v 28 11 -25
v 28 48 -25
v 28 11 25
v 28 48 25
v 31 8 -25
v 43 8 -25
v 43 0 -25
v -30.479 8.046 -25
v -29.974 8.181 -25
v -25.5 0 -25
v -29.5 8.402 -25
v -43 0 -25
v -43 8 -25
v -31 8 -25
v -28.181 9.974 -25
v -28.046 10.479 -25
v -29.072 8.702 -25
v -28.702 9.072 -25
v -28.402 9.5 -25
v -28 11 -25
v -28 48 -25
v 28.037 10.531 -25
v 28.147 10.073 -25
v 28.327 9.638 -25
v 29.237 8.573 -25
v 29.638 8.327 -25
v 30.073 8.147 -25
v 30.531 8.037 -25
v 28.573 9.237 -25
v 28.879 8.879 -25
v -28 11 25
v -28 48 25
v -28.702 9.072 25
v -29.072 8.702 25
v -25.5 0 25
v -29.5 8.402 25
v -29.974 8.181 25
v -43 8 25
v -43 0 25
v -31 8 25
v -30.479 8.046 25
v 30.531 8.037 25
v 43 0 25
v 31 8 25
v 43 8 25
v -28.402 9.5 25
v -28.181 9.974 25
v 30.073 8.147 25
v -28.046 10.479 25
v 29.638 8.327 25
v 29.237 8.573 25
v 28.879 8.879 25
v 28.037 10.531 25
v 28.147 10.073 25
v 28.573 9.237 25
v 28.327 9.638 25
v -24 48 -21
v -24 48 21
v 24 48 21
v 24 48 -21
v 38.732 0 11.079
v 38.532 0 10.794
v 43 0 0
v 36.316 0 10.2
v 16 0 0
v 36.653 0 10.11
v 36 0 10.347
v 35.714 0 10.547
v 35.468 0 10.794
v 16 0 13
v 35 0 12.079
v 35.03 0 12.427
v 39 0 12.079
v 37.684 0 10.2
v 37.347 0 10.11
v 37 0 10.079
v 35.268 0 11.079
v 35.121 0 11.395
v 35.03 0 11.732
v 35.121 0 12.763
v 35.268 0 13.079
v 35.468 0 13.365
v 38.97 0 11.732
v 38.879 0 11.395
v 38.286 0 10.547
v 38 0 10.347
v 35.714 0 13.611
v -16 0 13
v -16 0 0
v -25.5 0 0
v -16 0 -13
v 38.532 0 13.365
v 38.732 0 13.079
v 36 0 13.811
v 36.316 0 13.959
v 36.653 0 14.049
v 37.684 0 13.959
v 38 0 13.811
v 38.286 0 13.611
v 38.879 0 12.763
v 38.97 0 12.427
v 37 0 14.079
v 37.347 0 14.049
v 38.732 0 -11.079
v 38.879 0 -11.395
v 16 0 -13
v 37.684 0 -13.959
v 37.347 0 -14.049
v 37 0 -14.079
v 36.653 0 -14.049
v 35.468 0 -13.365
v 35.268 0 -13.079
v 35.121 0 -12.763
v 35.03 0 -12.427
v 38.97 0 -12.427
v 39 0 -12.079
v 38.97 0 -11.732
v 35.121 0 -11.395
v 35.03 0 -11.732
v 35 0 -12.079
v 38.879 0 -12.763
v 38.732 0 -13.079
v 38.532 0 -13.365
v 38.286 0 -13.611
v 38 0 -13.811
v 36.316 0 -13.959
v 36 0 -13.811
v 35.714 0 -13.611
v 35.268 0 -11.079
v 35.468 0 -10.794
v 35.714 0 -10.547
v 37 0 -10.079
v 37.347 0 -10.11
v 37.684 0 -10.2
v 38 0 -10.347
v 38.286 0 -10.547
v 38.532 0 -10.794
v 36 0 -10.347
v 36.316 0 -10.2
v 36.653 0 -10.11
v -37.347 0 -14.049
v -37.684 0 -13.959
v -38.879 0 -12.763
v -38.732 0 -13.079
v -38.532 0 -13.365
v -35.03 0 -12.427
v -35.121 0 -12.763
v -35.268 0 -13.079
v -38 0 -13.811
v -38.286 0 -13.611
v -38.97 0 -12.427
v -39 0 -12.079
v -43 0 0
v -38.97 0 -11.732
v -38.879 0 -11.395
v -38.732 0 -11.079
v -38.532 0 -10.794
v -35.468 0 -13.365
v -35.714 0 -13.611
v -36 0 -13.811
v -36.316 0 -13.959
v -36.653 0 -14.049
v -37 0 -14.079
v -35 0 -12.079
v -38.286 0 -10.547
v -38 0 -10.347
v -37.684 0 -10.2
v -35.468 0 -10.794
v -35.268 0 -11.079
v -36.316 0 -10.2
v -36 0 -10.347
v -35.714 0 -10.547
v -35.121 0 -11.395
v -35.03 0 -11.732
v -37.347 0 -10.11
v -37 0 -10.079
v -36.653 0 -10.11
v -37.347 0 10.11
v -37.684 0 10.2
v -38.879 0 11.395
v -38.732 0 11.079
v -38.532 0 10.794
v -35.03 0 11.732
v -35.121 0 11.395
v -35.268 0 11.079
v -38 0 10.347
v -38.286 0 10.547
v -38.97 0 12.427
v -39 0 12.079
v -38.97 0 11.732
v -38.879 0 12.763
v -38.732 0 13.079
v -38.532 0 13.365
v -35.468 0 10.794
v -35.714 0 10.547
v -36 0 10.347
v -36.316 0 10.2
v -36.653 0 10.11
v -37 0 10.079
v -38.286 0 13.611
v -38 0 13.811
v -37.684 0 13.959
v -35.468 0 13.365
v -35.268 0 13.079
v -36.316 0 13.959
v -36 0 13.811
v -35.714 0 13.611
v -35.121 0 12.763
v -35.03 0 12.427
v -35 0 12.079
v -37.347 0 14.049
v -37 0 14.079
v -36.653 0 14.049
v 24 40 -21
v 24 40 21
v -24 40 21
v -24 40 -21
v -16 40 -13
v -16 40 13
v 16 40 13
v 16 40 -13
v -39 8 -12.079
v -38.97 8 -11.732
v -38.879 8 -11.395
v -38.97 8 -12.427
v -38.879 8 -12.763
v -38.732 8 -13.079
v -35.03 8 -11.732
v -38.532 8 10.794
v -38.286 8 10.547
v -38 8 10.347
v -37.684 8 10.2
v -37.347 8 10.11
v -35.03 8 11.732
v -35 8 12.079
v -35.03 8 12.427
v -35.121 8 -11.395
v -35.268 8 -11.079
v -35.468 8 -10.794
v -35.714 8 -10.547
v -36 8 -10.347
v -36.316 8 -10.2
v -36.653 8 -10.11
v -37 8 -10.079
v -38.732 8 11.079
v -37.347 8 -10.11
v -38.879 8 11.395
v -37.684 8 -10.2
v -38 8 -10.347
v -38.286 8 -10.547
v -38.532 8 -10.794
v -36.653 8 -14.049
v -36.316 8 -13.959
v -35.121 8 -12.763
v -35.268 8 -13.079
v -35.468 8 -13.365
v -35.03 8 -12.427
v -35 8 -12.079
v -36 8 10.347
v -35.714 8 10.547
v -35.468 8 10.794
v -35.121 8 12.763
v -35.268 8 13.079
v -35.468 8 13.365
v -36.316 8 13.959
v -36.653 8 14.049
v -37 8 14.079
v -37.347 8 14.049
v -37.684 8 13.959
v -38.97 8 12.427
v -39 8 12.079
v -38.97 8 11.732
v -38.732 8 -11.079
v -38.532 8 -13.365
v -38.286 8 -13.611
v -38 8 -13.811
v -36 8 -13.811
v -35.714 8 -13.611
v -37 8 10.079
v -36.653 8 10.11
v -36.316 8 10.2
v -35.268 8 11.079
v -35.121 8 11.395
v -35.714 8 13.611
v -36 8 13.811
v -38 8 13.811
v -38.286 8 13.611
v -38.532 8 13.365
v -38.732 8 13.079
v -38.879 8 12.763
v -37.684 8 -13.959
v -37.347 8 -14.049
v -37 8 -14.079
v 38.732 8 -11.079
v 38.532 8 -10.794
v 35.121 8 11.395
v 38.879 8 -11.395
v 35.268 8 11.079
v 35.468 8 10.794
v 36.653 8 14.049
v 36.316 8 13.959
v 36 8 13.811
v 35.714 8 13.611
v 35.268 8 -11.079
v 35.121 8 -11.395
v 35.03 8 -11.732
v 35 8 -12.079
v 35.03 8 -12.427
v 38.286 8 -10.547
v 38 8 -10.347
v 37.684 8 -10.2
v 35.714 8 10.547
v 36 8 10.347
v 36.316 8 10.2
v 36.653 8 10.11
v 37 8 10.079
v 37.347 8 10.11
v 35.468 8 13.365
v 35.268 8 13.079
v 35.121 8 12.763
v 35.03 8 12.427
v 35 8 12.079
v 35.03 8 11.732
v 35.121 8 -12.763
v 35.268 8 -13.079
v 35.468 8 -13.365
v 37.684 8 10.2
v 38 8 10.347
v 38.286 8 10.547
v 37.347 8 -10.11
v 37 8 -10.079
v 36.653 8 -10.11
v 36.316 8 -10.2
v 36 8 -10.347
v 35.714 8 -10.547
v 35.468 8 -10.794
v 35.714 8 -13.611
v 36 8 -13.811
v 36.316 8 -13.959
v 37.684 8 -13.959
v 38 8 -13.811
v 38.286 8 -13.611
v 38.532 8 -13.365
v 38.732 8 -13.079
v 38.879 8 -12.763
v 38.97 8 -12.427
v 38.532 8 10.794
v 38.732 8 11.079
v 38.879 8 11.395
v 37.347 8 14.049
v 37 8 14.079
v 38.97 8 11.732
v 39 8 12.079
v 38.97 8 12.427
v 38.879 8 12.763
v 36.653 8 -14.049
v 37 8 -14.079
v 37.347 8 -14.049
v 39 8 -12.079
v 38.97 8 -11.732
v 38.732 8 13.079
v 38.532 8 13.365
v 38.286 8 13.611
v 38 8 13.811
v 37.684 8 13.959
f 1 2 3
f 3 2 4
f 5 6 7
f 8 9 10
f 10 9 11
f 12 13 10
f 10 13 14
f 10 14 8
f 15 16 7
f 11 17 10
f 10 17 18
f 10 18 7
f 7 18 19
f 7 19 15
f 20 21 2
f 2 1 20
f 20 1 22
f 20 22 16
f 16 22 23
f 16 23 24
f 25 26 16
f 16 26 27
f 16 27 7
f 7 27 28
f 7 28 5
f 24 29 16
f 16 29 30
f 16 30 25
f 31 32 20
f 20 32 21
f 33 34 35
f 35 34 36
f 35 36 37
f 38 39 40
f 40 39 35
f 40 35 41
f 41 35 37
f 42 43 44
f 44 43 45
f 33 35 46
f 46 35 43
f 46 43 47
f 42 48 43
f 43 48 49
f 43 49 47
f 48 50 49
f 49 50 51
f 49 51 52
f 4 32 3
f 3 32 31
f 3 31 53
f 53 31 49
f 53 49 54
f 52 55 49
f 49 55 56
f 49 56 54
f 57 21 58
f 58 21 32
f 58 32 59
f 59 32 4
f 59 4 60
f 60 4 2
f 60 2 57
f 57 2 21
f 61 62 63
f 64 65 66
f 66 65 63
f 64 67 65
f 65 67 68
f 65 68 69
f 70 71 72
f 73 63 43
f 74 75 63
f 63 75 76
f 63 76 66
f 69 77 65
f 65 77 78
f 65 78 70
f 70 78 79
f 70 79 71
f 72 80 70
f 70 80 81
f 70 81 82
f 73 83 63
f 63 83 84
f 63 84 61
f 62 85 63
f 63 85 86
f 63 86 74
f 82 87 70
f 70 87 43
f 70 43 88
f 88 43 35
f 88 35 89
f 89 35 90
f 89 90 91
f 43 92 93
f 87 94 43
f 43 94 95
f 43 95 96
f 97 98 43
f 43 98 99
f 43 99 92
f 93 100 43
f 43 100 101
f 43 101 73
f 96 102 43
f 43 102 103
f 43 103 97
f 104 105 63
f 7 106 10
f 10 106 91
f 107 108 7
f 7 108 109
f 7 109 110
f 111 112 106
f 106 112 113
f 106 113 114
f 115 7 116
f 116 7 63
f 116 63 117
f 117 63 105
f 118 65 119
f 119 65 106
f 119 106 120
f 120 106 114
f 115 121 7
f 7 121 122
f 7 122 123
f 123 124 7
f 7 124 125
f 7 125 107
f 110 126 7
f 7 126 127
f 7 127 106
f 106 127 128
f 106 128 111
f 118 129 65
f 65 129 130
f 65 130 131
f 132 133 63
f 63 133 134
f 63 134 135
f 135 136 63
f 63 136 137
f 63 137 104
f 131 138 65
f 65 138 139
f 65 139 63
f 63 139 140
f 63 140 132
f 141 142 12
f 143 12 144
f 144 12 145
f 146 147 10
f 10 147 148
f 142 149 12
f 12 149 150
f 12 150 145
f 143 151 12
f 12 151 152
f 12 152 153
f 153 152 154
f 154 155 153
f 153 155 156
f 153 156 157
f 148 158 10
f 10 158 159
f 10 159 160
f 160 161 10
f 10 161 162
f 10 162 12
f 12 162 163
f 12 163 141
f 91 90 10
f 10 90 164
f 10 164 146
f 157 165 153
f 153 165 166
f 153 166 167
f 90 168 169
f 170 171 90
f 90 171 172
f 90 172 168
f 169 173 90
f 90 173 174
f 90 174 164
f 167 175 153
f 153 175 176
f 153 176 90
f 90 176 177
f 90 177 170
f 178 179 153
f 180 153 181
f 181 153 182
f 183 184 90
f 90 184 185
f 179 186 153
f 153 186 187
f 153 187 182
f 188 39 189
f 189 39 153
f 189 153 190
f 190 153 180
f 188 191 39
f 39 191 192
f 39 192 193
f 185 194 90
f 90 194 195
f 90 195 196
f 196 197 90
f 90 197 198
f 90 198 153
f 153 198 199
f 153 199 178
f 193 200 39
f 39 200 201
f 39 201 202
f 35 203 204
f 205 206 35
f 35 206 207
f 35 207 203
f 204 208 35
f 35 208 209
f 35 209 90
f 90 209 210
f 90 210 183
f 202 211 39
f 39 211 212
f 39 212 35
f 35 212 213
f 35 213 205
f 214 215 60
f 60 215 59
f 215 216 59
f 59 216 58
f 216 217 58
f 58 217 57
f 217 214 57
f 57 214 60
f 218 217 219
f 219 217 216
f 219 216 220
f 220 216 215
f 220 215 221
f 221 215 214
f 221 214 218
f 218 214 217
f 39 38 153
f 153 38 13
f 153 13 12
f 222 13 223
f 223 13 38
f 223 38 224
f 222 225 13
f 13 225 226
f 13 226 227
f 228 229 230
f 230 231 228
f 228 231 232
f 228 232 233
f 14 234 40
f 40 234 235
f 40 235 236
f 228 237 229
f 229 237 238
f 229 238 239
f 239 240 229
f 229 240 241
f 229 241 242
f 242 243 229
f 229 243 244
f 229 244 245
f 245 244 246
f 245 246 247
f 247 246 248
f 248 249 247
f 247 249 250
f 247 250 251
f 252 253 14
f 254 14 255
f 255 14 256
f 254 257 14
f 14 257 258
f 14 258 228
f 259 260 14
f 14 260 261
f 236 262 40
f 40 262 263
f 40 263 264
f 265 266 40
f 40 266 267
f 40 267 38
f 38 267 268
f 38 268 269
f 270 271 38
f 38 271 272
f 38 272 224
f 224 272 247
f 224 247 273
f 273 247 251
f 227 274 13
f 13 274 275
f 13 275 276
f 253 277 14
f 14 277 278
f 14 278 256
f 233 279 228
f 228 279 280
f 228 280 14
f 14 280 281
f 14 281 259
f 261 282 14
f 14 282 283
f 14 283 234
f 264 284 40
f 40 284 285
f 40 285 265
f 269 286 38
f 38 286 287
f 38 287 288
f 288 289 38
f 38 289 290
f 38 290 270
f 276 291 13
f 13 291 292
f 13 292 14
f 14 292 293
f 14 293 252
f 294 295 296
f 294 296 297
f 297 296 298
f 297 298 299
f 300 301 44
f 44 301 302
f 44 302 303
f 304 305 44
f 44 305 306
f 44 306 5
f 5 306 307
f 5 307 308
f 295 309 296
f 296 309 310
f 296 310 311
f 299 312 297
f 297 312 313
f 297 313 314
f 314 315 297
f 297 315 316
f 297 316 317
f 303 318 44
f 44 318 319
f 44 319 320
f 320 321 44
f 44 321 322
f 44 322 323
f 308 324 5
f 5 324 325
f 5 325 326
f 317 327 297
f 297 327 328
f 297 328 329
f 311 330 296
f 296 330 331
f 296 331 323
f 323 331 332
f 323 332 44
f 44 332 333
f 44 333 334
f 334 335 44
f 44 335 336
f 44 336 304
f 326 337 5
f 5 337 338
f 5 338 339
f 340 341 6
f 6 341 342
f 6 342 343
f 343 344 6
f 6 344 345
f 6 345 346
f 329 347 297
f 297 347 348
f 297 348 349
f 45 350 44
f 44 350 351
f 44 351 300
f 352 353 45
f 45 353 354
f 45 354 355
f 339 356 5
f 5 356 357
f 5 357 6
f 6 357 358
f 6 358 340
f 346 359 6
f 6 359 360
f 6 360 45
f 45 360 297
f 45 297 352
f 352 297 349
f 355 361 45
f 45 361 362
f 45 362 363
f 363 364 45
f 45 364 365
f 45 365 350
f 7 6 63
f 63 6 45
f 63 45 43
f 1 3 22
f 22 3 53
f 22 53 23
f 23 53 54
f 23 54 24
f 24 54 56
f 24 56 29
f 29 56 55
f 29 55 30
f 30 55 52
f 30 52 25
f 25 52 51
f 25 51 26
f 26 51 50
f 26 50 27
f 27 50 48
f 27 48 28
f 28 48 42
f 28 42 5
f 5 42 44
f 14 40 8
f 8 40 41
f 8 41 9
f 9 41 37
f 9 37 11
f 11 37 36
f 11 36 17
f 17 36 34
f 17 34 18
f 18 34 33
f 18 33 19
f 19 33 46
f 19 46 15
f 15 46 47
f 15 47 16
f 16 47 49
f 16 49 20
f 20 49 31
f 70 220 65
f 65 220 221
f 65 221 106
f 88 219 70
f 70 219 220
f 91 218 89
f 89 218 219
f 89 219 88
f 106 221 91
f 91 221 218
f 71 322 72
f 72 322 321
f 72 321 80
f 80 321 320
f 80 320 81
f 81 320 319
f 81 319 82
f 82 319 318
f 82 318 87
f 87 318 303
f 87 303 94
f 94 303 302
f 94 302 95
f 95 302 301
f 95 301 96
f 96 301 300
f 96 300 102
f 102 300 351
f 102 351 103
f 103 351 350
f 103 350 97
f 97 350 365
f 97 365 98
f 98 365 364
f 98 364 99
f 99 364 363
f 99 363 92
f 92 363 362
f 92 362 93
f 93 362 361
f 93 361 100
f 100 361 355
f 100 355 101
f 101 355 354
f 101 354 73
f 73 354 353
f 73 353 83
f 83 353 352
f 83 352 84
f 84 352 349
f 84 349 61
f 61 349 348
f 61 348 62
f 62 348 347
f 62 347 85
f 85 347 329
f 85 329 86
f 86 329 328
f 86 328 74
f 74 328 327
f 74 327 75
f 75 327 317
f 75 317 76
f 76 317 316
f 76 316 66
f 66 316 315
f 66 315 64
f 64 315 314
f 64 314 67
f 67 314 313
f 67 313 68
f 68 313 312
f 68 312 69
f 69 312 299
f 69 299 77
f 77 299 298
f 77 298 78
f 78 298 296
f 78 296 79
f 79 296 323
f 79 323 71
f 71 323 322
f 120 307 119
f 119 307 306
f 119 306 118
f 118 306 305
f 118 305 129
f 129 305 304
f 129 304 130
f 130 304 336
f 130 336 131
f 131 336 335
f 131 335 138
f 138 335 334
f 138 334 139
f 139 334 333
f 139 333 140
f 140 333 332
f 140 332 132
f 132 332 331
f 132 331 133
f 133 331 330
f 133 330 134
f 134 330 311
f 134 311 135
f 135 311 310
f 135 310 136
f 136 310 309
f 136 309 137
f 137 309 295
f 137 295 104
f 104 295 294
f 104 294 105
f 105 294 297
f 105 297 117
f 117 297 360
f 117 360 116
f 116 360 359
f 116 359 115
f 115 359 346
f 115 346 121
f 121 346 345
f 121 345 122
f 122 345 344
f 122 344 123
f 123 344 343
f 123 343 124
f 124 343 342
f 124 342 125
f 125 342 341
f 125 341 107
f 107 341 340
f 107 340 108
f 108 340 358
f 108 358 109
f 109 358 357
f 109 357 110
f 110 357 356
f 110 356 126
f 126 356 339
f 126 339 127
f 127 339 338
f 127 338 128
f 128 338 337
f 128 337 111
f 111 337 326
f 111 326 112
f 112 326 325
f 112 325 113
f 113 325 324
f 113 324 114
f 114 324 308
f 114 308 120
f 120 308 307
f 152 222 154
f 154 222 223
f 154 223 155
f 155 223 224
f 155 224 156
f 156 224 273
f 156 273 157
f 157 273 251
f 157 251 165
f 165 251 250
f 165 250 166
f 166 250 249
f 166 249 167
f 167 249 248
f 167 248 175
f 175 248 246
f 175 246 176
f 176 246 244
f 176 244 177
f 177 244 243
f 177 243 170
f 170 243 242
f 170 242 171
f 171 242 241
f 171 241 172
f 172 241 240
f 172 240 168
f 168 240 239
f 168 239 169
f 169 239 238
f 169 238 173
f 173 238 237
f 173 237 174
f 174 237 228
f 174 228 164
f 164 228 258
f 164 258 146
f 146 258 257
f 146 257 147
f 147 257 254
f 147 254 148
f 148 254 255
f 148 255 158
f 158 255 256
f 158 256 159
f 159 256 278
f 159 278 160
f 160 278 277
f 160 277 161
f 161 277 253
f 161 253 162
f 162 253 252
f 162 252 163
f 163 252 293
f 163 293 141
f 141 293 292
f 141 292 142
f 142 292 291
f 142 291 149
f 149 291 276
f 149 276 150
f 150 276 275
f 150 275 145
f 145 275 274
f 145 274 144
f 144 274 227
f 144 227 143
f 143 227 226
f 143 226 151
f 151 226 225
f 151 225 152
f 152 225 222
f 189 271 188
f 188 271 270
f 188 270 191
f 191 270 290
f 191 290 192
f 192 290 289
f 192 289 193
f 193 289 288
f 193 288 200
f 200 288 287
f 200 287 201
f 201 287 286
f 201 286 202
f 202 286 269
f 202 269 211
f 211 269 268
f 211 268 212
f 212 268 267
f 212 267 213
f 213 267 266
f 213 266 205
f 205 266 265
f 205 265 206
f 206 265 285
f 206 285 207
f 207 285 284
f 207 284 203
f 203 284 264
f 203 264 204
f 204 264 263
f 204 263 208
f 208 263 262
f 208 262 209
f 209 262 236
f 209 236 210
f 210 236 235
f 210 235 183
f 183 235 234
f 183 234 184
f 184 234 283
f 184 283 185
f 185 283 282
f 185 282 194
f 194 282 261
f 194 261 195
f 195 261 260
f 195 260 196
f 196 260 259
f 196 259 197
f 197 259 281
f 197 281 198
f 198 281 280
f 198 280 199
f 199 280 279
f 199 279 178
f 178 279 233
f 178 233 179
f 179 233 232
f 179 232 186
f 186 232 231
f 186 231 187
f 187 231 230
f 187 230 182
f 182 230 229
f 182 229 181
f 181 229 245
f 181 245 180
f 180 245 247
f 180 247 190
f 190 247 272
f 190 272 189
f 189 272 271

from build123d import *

# Parameters (mm, degrees)
SKETCH1_W               = 56
SKETCH1_H               = 50
BOSS_EXTRUDE1_DEPTH     = 48
SKETCH3_W               = 48
SKETCH3_H               = 42
CUT_EXTRUDE1_DEPTH      = 8
SKETCH4_W               = 15
SKETCH4_H               = 8
BOSS_EXTRUDE2_DEPTH     = 50
FILLET1_R               = 3
CUT_EXTRUDE2_DEPTH      = 64.827893589
CUT_EXTRUDE2_DEPTH_BACK = 64.827893589
SKETCH5_W               = 32
SKETCH5_H               = 26
CUT_EXTRUDE3_DEPTH      = 64.827893589
CUT_EXTRUDE3_DEPTH_BACK = 64.827893589
SKETCH6_R               = 2


with BuildPart() as part:
    # Sketch1 → Boss-Extrude1 (new body)
    with BuildSketch(Plane(origin=(0, 0, 0), x_dir=(1, 0, 0), z_dir=(0, 1, 0))):
        Rectangle(SKETCH1_W, SKETCH1_H)
    extrude(amount=BOSS_EXTRUDE1_DEPTH)

    # Sketch3 → Cut-Extrude1 (cut)
    with BuildSketch(Plane(origin=(0, 48, 0), x_dir=(1, 0, 0), z_dir=(0, 1, 0))):
        Rectangle(SKETCH3_W, SKETCH3_H)
    extrude(amount=-CUT_EXTRUDE1_DEPTH, mode=Mode.SUBTRACT)

    # Sketch4 → Boss-Extrude2 (add)
    with BuildSketch(Plane.XY.offset(25)):
        with Locations((-35.5, 4)):
            Rectangle(SKETCH4_W, SKETCH4_H)
        with Locations((35.5, 4)):
            Rectangle(SKETCH4_W, SKETCH4_H)
    extrude(amount=-BOSS_EXTRUDE2_DEPTH)

    # Fillet1
    fillet1_edges = [part.edges().sort_by_distance(p)[0] for p in [
        (-28, 8, 0),
        (28, 8, 0),
    ]]
    fillet(fillet1_edges, radius=FILLET1_R)

    # Sketch5 → Cut-Extrude2 (cut, two sides: drawn at the far end of the back side and taken through both)
    with BuildSketch(Plane(origin=(0, 40, 0), x_dir=(1, 0, 0), z_dir=(0, 1, 0)).offset(-CUT_EXTRUDE2_DEPTH_BACK)):
        Rectangle(SKETCH5_W, SKETCH5_H)
    extrude(amount=CUT_EXTRUDE2_DEPTH + CUT_EXTRUDE2_DEPTH_BACK, mode=Mode.SUBTRACT)

    # Sketch6 → Cut-Extrude3 (cut, two sides: drawn at the far end of the back side and taken through both)
    with BuildSketch(Plane(origin=(0, 8, 0), x_dir=(1, 0, 0), z_dir=(0, 1, 0)).offset(-CUT_EXTRUDE3_DEPTH_BACK)):
        with Locations(Location((-37, 12.079385962, 0), (0, 0, 180))):
            Circle(SKETCH6_R)
        with Locations(Location((-37, -12.079385962, 0), (0, 0, 180))):
            Circle(SKETCH6_R)
        with Locations((37, -12.079385962)):
            Circle(SKETCH6_R)
        with Locations((37, 12.079385962)):
            Circle(SKETCH6_R)
    extrude(amount=CUT_EXTRUDE3_DEPTH + CUT_EXTRUDE3_DEPTH_BACK, mode=Mode.SUBTRACT)


solid = part.part
